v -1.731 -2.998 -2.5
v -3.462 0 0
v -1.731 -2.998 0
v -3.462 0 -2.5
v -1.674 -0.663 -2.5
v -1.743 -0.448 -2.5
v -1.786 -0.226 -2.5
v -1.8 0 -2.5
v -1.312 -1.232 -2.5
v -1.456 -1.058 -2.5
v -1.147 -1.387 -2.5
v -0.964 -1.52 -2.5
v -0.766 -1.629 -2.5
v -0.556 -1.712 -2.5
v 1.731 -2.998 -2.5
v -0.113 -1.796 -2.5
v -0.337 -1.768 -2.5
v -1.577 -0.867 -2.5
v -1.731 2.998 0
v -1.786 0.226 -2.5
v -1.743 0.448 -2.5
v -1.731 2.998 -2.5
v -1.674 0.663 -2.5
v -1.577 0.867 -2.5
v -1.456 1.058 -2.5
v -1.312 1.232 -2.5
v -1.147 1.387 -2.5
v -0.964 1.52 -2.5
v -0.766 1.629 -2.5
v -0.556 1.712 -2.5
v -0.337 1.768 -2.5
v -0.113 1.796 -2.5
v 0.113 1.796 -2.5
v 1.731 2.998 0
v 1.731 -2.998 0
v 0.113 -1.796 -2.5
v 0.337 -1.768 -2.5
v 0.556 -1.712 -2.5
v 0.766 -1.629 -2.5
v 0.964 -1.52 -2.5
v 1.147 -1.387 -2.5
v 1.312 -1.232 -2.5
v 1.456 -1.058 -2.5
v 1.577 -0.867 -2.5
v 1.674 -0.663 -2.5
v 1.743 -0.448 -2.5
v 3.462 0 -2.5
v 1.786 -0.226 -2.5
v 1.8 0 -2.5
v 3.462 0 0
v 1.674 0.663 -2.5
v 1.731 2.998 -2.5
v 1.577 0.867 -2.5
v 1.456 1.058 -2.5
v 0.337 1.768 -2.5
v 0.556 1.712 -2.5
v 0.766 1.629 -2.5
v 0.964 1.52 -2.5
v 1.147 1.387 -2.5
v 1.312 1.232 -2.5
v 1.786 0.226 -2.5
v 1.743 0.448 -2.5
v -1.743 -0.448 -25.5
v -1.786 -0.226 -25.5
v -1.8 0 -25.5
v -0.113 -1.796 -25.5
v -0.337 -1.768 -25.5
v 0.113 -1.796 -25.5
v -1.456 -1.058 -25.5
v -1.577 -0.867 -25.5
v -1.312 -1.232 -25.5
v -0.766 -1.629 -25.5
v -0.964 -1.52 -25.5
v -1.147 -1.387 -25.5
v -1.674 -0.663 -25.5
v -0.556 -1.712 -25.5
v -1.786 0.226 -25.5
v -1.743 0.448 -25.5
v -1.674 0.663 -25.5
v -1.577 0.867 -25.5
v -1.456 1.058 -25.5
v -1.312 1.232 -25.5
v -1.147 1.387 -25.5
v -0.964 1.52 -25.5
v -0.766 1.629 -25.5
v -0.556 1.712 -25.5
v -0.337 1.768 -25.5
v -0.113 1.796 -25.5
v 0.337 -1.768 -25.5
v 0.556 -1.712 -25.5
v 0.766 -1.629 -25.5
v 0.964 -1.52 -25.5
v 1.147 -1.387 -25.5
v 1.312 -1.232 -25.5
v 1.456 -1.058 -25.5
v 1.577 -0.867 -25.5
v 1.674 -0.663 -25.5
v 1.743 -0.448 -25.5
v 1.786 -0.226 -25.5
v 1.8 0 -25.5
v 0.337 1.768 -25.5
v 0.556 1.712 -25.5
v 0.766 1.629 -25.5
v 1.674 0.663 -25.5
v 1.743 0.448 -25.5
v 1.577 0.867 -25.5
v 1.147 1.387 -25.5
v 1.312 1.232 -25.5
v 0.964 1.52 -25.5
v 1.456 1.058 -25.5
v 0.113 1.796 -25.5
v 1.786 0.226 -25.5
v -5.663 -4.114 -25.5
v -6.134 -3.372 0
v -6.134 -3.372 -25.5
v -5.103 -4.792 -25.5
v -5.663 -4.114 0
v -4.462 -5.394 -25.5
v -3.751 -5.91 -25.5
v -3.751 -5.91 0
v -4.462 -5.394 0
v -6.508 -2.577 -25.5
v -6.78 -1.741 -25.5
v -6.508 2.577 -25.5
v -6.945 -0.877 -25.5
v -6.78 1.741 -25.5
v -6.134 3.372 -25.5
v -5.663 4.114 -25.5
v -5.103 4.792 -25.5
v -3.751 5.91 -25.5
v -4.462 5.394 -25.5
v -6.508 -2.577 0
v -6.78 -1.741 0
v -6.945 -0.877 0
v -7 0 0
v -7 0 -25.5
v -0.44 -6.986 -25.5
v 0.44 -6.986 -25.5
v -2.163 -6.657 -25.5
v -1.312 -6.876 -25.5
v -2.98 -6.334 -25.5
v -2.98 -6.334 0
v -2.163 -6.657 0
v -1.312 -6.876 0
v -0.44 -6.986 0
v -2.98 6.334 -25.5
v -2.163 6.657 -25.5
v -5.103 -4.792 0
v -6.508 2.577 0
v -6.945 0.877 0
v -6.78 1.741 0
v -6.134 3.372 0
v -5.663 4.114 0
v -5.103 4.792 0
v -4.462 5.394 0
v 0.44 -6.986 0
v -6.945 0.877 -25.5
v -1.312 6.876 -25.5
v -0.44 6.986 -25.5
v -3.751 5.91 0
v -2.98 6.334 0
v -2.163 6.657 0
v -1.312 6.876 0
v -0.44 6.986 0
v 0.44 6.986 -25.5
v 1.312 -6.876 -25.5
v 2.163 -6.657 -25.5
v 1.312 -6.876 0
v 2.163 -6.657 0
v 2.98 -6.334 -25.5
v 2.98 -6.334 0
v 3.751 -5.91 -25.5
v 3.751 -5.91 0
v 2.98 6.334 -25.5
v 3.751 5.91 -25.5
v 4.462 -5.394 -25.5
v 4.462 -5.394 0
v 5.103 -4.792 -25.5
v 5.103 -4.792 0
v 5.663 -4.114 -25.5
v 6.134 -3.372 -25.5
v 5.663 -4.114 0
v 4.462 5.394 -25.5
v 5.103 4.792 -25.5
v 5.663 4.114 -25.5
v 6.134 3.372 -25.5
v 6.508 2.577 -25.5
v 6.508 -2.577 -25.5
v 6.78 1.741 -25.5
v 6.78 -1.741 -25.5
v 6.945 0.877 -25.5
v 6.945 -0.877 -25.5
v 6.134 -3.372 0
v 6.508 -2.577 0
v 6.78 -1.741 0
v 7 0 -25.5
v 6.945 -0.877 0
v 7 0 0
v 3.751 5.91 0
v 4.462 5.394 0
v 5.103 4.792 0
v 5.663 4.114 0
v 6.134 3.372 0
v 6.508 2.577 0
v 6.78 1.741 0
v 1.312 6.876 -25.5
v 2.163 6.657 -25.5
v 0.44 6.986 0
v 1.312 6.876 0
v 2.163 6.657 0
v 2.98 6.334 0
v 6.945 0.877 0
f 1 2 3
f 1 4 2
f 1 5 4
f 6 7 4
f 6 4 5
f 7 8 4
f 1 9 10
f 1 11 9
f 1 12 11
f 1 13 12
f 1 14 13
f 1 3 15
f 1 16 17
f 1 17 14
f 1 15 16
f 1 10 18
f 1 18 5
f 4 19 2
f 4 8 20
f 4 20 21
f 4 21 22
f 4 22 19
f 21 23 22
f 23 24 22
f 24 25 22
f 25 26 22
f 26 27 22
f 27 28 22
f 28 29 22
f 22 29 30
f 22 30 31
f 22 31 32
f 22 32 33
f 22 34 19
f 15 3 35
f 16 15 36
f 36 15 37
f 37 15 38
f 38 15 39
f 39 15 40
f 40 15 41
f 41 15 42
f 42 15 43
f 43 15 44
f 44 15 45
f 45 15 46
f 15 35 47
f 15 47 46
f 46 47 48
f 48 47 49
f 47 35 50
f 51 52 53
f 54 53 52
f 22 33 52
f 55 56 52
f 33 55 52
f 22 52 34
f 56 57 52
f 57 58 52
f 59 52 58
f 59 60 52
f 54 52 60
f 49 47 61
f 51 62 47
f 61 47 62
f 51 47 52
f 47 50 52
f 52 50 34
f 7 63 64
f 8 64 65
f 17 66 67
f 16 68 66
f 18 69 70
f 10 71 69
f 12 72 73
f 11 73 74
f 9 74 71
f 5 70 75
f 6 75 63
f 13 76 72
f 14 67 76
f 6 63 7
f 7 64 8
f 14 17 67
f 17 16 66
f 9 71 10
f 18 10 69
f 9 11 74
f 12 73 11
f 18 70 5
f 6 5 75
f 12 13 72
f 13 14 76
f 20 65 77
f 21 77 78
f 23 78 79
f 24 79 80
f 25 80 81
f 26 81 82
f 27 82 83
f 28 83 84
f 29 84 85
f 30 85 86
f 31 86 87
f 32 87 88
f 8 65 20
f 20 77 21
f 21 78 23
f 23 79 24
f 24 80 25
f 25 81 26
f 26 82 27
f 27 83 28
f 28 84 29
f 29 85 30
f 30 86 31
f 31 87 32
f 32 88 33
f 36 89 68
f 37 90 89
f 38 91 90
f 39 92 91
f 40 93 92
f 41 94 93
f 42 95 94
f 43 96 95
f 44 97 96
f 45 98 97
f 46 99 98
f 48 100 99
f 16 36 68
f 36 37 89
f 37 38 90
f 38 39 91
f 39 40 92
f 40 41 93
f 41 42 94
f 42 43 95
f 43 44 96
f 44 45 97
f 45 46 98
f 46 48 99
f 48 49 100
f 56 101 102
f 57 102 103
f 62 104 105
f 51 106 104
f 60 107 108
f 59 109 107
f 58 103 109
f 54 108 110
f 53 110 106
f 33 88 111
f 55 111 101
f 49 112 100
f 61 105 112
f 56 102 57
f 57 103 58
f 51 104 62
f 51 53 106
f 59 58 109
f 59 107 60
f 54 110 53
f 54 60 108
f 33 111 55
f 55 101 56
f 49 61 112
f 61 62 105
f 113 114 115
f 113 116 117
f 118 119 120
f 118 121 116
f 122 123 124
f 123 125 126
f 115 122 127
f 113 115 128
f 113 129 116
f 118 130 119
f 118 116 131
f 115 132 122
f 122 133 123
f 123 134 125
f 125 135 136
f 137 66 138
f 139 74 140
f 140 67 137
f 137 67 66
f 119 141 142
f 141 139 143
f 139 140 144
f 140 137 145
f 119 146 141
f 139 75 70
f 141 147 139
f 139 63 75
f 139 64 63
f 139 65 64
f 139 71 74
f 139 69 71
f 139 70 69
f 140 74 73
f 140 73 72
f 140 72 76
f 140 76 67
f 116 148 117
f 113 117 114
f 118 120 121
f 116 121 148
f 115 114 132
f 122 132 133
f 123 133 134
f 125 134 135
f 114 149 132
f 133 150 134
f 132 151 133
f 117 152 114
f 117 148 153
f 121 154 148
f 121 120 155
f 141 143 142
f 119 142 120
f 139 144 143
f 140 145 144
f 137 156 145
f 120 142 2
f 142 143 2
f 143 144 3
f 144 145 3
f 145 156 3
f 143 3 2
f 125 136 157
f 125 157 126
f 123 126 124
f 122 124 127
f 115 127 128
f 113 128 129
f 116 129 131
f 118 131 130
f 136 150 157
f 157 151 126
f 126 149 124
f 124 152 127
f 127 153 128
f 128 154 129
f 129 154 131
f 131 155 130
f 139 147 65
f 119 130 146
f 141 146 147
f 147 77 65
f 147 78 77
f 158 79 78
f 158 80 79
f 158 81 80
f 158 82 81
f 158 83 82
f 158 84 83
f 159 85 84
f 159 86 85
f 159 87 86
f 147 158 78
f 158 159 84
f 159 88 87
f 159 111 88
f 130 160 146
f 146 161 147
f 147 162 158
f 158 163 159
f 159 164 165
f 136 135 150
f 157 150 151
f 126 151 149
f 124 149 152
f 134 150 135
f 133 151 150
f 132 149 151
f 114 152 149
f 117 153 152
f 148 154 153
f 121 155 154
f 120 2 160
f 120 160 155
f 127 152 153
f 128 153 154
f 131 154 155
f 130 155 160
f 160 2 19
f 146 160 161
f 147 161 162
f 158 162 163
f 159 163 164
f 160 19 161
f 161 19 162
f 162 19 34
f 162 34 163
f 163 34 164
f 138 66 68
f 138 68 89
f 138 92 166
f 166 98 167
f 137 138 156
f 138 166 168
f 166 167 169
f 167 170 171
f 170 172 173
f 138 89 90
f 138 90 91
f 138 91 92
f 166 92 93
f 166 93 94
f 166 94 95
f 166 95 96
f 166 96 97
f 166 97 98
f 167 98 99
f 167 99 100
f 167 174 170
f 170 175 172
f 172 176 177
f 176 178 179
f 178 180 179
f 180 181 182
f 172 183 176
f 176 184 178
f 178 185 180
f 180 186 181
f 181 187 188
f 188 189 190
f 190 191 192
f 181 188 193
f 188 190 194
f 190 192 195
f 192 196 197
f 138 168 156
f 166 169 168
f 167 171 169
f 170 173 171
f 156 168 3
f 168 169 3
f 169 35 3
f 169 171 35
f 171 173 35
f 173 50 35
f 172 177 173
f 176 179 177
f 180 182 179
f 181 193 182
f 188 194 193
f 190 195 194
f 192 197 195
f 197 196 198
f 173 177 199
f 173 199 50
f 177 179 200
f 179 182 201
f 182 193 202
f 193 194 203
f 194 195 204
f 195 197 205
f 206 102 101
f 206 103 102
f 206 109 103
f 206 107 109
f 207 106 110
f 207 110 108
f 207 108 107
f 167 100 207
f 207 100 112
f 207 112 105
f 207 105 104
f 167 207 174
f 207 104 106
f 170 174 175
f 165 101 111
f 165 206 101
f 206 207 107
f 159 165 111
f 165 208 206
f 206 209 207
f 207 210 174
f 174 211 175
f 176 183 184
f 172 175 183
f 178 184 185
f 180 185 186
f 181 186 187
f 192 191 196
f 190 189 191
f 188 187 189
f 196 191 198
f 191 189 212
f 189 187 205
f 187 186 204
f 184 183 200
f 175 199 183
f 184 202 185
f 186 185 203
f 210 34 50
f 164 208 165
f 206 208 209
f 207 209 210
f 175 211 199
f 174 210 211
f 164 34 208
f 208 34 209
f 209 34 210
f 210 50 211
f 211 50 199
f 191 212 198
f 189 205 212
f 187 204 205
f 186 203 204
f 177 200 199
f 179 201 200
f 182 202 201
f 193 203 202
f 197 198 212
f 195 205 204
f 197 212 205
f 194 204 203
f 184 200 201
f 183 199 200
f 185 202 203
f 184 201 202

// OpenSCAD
$fn = 50;


difference() {
	union() {
		translate(v = [0, 0, -25.5000000000]) {
			cylinder(h = 25.5000000000, r = 7.0000000000);
		}
	}
	union() {
		translate(v = [0, 0, 0]) {
			rotate(a = [0, 0, 0]) {
				difference() {
					union() {
						translate(v = [0, 0, -2.5000000000]) {
							linear_extrude(height = 2.5000000000) {
								polygon(points = [[3.4620000000, 0.0000000000], [1.7310000000, 2.9981799479], [-1.7310000000, 2.9981799479], [-3.4620000000, 0.0000000000], [-1.7310000000, -2.9981799479], [1.7310000000, -2.9981799479]]);
							}
						}
					}
					union();
				}
			}
		}
		#translate(v = [0, 0, -100.0000000000]) {
			cylinder(h = 200, r = 1.8000000000);
		}
	}
}
